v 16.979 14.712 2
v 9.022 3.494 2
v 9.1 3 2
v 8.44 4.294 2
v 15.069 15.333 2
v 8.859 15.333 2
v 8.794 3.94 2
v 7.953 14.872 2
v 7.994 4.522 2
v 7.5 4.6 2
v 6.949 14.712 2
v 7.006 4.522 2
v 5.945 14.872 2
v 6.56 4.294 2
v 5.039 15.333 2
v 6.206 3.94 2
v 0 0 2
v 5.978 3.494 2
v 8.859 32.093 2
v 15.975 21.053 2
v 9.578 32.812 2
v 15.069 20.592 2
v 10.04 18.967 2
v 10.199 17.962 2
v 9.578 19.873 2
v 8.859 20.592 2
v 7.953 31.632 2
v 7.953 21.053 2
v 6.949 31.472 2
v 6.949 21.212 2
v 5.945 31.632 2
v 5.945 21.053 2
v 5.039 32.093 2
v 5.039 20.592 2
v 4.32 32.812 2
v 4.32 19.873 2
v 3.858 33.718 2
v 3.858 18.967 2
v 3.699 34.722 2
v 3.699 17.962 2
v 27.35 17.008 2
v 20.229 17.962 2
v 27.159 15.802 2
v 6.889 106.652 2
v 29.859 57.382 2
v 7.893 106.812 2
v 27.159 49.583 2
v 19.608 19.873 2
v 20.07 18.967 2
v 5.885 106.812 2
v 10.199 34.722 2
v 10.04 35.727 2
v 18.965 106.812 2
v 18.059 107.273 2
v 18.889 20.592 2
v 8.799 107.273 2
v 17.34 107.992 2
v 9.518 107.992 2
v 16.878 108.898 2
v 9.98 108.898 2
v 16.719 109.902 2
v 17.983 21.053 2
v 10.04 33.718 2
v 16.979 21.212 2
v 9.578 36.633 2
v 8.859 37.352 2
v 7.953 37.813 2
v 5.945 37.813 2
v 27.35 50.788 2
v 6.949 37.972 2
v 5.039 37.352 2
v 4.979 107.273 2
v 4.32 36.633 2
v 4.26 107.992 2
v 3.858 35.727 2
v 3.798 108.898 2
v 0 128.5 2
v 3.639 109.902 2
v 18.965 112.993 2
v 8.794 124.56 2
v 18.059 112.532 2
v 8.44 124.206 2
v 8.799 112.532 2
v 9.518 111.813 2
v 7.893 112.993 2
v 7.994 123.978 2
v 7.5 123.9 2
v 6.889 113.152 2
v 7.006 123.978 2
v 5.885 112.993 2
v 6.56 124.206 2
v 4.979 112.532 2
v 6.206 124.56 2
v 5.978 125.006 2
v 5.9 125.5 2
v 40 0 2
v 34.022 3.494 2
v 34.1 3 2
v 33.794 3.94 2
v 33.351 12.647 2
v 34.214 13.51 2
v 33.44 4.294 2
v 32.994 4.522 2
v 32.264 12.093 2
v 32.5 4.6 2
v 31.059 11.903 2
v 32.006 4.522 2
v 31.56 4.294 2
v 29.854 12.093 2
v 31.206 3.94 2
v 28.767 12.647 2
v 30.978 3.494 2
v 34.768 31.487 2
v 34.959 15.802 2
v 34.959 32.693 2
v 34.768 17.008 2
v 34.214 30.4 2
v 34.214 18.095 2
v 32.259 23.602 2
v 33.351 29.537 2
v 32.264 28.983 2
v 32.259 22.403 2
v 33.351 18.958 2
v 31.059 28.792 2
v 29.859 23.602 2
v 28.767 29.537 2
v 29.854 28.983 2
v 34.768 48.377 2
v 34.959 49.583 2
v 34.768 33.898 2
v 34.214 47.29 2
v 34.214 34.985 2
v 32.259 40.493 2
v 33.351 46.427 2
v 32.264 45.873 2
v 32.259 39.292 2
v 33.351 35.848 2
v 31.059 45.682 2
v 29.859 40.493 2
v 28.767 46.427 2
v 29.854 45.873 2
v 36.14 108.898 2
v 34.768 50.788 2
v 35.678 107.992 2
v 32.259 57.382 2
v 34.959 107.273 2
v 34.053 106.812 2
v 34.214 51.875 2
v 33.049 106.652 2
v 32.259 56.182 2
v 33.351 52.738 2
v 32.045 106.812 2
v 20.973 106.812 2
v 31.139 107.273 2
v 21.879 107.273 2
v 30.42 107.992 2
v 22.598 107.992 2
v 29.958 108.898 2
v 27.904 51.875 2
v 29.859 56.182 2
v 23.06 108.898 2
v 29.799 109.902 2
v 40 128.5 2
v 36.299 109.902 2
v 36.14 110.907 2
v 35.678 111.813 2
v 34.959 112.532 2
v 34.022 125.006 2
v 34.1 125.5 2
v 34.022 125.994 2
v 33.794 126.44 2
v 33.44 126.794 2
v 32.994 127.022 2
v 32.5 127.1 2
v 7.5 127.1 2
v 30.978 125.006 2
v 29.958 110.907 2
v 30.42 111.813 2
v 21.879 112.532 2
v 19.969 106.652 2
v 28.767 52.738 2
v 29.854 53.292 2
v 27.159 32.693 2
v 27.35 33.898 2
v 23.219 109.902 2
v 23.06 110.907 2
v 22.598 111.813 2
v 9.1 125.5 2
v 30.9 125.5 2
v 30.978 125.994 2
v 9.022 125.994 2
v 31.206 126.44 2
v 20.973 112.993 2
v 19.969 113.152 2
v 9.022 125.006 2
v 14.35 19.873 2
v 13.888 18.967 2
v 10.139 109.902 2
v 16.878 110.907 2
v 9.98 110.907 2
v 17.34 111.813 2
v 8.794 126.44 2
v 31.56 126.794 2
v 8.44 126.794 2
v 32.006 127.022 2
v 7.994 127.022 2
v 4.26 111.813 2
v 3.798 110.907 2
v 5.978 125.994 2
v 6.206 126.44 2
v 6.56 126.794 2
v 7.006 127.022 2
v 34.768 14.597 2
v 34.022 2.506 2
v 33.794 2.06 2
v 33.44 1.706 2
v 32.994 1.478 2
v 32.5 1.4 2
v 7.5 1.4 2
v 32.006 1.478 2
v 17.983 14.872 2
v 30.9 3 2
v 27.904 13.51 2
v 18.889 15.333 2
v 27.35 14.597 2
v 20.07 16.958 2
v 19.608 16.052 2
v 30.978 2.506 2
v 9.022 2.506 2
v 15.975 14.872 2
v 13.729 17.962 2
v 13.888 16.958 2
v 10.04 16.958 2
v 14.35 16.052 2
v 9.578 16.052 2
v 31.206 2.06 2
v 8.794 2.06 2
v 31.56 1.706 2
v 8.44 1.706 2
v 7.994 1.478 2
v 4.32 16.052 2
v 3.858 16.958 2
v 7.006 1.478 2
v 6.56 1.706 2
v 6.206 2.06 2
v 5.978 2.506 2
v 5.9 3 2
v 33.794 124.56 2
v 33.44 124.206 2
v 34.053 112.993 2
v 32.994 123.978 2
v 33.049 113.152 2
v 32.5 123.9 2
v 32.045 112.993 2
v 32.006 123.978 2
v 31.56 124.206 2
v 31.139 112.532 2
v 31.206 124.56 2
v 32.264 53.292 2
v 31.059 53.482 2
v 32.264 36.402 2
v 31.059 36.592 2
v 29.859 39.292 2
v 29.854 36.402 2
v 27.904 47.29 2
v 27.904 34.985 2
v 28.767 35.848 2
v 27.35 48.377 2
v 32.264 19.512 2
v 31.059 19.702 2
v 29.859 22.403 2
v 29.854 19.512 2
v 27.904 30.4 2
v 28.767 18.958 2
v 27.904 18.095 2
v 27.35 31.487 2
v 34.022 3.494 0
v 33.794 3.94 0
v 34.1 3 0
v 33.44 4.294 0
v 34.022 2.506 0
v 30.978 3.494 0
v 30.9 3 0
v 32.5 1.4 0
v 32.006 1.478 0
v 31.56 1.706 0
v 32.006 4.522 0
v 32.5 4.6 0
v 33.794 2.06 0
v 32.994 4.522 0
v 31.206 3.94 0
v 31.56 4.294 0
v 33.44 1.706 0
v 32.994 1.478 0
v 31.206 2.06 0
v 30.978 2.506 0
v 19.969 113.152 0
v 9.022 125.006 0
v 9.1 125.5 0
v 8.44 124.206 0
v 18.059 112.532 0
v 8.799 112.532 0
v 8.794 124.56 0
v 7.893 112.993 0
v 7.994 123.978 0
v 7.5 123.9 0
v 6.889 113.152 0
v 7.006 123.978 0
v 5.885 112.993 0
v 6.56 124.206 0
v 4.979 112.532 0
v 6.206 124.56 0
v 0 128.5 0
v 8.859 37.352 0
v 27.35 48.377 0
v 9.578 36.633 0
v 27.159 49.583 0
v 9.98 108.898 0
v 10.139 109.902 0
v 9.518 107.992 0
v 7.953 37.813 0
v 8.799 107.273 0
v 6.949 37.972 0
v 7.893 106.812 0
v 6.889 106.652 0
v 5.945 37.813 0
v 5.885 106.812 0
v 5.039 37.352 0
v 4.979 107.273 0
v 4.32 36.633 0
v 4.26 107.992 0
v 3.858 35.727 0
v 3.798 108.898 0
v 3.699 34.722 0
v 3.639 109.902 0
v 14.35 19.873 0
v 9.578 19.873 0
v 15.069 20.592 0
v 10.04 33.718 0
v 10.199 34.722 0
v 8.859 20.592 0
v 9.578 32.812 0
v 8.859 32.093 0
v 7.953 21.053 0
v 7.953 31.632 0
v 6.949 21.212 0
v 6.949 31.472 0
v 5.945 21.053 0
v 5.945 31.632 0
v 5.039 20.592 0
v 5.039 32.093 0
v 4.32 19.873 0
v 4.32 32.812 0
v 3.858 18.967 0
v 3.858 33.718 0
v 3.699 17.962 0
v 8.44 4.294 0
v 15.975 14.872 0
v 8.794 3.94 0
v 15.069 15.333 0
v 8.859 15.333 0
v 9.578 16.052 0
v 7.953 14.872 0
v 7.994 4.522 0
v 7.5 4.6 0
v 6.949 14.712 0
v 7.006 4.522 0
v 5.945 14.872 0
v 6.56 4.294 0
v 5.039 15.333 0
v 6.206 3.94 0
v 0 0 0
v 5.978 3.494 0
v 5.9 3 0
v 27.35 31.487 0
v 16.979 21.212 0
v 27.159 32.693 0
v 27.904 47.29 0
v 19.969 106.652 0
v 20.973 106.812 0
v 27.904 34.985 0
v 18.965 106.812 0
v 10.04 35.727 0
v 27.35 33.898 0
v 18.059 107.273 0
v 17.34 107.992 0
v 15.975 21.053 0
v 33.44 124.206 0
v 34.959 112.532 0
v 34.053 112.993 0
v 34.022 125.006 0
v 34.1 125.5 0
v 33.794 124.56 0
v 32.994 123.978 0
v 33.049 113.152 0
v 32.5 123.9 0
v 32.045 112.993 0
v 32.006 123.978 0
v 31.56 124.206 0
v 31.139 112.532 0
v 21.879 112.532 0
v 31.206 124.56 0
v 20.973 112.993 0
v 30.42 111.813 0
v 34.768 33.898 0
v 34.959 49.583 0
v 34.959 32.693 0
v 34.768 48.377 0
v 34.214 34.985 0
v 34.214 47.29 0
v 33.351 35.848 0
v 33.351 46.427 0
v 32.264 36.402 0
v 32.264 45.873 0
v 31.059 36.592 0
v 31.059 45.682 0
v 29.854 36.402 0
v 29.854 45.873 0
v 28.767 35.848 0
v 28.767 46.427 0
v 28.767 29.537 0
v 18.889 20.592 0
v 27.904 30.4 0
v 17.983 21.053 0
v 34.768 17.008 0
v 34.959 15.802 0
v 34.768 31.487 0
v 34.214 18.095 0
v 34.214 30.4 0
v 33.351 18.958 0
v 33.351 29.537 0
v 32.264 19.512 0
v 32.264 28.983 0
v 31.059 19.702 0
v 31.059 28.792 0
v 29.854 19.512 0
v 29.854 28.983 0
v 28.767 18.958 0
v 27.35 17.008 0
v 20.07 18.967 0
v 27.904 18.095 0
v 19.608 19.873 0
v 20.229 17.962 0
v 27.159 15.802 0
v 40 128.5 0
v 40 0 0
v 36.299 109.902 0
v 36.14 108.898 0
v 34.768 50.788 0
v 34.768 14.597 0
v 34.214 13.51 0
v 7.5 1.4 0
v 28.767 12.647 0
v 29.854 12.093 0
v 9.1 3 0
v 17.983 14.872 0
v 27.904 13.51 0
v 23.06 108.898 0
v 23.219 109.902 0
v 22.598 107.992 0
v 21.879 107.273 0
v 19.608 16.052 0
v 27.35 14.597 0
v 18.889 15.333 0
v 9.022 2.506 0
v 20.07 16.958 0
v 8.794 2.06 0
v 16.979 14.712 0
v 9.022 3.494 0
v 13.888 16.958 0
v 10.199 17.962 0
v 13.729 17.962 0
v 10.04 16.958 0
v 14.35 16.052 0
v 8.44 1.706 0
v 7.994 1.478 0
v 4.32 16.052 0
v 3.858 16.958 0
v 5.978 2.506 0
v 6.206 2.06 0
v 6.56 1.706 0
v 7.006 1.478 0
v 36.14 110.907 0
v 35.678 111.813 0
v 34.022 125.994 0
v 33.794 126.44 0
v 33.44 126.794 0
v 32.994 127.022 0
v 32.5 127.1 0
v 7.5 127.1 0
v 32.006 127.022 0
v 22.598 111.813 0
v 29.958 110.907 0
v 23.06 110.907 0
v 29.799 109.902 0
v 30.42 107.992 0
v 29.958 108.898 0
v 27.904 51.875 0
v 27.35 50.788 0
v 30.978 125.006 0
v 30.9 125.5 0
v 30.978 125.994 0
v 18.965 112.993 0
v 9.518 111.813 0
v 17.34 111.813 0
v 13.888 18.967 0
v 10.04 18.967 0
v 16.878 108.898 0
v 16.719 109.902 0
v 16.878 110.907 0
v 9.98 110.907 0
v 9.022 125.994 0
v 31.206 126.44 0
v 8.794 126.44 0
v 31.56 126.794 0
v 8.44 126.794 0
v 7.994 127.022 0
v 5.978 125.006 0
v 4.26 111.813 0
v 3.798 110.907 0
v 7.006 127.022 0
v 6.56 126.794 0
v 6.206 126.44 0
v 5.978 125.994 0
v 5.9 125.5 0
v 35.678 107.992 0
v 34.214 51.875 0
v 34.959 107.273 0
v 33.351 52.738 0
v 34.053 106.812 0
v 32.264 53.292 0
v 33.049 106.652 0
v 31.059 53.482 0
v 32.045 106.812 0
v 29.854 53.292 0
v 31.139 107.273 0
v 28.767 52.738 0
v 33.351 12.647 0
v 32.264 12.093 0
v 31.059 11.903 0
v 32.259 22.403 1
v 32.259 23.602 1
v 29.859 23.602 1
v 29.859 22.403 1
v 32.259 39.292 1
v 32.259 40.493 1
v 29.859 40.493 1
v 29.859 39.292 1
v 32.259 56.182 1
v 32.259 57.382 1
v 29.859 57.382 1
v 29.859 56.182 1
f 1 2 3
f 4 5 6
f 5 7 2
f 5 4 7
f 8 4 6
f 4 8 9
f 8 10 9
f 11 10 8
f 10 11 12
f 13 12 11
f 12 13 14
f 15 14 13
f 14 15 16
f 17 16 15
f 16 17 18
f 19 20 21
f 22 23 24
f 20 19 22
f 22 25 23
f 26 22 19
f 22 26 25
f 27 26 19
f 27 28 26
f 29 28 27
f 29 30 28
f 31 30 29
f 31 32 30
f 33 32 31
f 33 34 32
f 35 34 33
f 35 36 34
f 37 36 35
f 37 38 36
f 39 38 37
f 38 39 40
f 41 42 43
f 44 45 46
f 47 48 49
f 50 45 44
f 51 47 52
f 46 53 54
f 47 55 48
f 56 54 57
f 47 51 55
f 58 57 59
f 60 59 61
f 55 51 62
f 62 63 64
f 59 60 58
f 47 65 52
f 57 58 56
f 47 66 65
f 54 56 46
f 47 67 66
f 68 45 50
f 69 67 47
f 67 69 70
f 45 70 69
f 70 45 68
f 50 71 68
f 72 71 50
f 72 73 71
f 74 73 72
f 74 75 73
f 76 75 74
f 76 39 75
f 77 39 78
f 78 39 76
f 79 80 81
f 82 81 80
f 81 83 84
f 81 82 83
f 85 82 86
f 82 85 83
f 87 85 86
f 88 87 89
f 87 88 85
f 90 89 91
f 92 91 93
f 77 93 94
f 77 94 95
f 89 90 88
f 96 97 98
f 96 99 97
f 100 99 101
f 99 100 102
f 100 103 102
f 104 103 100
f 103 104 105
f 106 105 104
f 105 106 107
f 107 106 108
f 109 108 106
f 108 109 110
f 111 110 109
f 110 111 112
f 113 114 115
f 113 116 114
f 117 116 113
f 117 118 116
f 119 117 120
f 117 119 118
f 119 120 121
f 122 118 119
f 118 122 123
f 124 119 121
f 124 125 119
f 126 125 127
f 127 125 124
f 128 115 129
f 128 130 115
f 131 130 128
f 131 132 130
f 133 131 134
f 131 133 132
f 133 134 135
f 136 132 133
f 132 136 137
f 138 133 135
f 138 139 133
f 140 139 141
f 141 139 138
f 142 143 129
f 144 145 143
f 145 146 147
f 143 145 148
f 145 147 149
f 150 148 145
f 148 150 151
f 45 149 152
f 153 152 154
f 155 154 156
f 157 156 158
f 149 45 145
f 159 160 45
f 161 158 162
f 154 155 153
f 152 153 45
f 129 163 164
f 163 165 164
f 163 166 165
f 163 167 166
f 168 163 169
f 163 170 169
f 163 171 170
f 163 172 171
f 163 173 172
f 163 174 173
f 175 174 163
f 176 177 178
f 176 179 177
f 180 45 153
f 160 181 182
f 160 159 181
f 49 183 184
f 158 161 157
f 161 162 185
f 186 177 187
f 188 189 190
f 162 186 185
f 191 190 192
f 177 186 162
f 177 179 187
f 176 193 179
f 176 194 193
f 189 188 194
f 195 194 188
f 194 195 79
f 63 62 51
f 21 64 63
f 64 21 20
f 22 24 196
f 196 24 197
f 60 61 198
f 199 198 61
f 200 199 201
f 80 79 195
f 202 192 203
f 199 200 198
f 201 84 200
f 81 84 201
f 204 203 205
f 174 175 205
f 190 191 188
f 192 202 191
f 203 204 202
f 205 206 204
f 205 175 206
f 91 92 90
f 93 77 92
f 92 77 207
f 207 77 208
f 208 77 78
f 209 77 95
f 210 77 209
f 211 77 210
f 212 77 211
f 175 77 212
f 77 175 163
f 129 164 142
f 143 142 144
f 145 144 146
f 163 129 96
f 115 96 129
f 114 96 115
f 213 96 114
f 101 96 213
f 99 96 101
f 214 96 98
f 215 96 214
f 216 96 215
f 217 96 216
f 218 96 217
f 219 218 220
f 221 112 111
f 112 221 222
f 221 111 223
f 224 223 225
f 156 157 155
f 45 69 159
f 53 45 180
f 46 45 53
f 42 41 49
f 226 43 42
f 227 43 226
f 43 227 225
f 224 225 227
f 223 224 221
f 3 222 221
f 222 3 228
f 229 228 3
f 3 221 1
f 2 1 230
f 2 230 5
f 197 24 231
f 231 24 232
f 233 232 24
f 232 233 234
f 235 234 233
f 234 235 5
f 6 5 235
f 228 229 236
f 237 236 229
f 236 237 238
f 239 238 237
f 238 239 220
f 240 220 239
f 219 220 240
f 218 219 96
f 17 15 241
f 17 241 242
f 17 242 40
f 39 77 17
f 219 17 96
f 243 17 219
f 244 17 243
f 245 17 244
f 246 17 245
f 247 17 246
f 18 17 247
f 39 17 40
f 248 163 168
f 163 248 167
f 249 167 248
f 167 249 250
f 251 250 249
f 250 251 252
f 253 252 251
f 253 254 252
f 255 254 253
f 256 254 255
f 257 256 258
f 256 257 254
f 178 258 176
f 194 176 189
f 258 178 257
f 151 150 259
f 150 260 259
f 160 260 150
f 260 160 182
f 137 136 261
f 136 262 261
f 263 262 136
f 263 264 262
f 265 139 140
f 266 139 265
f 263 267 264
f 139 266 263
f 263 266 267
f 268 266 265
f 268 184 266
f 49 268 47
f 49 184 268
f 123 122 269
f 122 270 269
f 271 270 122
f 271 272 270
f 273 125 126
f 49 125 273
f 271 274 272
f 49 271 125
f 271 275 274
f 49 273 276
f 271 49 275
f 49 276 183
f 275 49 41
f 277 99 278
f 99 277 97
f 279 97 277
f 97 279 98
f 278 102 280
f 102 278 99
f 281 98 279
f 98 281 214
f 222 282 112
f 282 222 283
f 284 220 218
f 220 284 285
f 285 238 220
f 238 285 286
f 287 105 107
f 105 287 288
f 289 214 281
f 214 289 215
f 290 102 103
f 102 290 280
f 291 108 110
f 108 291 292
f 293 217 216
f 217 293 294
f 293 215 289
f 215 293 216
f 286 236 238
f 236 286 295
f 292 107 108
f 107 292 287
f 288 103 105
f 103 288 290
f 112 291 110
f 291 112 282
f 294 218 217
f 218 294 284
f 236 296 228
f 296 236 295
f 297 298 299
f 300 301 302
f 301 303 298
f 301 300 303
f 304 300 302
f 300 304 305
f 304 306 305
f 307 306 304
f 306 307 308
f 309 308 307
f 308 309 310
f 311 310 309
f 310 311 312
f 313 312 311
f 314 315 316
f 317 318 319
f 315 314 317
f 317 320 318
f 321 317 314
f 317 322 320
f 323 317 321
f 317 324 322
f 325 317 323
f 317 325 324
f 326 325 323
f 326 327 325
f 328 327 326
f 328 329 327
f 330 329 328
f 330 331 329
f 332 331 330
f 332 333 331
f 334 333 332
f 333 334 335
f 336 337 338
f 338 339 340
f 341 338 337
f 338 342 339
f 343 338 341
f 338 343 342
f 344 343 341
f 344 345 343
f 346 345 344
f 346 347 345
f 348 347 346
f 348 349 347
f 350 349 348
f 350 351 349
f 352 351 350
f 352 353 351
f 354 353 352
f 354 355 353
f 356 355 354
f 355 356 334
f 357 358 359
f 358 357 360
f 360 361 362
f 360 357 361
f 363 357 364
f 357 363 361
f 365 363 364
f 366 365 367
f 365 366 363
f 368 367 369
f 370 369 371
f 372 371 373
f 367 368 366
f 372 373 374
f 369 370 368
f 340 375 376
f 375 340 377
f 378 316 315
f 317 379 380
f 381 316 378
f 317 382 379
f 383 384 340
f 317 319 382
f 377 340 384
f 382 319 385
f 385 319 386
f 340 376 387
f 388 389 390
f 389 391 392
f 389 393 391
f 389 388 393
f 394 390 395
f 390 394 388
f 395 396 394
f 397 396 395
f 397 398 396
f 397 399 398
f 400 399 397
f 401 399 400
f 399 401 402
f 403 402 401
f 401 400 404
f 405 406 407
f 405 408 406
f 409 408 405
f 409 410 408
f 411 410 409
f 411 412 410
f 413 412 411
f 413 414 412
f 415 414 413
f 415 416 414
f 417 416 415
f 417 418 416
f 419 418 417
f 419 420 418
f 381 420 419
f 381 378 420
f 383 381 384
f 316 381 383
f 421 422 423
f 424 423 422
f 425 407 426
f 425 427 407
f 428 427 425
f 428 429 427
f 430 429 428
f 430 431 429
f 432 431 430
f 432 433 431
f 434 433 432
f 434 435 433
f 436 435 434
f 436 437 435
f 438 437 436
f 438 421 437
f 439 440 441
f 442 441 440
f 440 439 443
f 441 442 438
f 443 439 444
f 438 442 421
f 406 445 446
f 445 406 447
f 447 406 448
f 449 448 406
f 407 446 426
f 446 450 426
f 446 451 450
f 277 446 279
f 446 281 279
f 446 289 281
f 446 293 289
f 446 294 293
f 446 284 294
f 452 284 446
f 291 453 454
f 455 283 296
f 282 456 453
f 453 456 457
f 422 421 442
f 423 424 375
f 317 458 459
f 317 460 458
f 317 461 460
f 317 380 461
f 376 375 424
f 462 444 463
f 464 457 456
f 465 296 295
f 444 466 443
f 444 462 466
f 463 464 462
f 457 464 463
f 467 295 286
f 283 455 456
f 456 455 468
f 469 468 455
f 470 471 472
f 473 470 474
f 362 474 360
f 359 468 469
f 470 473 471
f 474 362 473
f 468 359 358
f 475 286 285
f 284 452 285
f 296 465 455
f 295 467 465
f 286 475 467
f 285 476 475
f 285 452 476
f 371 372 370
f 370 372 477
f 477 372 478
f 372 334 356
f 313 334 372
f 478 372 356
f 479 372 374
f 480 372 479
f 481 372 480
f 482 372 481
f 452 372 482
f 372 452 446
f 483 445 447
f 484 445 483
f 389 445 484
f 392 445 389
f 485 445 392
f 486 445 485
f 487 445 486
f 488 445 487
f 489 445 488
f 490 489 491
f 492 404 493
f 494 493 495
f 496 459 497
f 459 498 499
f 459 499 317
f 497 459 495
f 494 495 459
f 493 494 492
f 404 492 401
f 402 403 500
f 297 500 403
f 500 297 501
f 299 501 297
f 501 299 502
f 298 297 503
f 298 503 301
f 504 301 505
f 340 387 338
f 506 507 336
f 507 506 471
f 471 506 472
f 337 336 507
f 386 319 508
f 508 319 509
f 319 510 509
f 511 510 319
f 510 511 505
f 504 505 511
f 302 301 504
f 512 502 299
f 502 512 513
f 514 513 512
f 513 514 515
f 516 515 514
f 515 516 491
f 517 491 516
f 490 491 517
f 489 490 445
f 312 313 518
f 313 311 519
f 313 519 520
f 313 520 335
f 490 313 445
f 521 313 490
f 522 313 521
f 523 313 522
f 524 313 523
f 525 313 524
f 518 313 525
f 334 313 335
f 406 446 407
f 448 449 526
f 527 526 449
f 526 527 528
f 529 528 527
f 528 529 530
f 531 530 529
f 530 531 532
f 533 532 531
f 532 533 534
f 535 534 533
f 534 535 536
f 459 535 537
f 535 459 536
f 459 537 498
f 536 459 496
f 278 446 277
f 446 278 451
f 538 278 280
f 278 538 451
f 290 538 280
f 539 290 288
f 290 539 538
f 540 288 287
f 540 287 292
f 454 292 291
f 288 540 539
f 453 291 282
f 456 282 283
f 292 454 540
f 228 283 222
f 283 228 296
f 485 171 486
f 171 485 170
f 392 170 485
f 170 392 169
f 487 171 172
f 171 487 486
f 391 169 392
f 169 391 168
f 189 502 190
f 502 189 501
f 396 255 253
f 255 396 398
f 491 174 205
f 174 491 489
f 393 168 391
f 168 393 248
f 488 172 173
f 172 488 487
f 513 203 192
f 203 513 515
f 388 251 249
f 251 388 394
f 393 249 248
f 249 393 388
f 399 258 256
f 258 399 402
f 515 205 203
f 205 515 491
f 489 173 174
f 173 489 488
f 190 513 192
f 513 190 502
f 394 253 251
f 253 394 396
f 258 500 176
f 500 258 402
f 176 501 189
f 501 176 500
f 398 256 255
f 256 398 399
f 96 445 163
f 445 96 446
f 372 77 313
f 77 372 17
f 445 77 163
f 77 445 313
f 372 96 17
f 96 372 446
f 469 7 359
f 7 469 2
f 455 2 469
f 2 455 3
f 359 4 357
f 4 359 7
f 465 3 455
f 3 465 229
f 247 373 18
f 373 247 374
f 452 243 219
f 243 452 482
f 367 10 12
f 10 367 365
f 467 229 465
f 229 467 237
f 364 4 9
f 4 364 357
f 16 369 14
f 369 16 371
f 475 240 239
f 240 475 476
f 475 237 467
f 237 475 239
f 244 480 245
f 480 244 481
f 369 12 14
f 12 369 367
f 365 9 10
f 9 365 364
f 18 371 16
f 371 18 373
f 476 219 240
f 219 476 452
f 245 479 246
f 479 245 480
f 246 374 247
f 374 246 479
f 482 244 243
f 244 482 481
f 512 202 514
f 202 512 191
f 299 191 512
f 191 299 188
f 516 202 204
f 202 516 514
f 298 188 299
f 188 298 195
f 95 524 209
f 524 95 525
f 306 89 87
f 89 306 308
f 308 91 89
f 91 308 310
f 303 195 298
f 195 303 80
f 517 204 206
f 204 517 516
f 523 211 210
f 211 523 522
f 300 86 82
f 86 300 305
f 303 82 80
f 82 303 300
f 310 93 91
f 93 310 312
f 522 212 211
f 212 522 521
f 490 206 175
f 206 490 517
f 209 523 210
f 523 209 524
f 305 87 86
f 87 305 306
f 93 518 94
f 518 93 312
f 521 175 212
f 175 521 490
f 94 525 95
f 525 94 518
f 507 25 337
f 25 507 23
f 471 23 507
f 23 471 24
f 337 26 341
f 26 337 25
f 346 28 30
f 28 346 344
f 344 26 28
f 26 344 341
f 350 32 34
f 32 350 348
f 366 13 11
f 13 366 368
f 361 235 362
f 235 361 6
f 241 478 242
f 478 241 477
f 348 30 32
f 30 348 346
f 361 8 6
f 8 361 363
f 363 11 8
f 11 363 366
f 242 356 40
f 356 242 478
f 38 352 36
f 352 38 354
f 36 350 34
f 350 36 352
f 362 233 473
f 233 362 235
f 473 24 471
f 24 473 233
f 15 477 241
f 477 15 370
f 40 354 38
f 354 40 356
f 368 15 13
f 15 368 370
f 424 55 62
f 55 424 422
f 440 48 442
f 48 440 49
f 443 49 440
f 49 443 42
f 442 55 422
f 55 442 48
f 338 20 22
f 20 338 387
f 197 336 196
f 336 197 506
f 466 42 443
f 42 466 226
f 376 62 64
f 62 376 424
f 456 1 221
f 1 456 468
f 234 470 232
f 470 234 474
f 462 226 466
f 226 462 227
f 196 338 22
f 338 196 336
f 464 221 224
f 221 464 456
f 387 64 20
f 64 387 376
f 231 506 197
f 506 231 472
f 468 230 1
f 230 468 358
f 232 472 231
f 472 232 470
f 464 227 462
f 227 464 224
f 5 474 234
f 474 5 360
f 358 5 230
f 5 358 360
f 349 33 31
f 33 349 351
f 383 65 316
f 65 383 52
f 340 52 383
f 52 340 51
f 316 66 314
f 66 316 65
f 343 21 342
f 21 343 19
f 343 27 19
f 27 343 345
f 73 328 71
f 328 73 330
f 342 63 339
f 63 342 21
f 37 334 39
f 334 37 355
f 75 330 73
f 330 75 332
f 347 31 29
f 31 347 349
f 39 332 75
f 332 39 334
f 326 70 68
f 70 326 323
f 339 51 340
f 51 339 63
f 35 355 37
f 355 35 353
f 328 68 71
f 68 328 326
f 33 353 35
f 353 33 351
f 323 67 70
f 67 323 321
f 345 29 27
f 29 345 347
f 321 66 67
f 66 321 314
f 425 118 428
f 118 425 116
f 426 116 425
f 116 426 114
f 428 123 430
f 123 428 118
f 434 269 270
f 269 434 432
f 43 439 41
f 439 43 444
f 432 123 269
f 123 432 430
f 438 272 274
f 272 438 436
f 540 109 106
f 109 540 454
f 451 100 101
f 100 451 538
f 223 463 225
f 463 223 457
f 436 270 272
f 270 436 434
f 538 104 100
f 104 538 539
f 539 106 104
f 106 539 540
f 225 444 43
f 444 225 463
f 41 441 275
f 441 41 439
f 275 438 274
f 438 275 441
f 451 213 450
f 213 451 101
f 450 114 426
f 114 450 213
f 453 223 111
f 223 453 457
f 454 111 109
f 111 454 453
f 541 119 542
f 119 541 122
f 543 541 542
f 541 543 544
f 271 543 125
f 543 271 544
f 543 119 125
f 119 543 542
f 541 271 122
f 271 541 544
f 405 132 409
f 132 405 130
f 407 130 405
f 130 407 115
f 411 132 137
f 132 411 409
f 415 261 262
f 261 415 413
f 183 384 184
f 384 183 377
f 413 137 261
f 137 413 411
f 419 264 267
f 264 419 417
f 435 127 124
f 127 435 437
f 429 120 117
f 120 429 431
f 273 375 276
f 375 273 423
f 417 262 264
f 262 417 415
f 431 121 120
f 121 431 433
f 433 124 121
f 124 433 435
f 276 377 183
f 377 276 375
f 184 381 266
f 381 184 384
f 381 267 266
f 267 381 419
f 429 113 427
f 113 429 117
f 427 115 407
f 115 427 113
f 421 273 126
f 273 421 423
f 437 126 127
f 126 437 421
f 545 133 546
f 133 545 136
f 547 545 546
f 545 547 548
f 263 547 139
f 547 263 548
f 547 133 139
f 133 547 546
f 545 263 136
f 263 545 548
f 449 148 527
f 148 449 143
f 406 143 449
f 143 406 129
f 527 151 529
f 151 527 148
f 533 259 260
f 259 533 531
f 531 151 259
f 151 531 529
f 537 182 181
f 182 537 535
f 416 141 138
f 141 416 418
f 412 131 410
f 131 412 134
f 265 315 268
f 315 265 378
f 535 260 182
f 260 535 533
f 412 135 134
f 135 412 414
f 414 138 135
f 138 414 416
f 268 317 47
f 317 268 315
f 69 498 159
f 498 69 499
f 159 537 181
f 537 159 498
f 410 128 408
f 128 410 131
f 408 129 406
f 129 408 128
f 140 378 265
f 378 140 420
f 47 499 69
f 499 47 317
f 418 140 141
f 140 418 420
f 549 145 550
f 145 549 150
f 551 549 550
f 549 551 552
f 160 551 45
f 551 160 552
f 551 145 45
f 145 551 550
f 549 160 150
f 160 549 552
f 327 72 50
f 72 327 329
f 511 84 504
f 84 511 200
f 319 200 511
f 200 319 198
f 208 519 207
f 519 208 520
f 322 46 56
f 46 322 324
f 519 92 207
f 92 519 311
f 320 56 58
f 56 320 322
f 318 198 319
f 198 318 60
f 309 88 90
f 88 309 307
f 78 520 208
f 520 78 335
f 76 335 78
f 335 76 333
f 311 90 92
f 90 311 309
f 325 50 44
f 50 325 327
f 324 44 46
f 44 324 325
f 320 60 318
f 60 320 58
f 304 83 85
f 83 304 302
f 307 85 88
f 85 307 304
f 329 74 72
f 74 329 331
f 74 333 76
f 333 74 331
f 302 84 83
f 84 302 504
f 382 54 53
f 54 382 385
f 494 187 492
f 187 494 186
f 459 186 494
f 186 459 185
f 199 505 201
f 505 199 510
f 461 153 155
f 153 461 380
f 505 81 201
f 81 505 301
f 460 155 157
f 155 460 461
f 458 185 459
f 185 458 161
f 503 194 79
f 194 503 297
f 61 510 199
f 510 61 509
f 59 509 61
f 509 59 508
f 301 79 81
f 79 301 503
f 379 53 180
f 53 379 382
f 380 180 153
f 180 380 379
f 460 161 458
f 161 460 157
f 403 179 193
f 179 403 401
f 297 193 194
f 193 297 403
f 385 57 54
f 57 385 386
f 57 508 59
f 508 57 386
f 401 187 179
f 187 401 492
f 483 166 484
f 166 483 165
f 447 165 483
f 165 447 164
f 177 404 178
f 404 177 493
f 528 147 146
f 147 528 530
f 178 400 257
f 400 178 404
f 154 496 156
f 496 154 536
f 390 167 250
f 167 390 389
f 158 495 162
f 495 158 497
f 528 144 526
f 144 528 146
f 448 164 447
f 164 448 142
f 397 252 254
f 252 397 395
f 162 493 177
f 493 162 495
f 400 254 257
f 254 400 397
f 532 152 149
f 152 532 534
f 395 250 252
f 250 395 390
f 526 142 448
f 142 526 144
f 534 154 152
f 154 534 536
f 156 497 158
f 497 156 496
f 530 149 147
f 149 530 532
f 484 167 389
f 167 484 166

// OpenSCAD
// file: ../../../share/openscad/eurorack-panel.scad
// this is based on A100 spec from doepfer https://doepfer.de/a100_man/a100m_e.htm

eurorack_panel_height = function() 128.5;
eurorack_panel_width = function(width_in_hp) width_in_hp * 5;

module eurorack_panel(width_in_hp, thickness=2) {
    difference() {
        cube([eurorack_panel_width(width_in_hp), eurorack_panel_height(), thickness]);

        translate([7.5, 3, 0])
            cylinder(thickness, d=3.2, $fn=20);
        translate([7.5, eurorack_panel_height() - 3, 0])
            cylinder(thickness, d=3.2, $fn=20);

        if (width_in_hp >= 8) {
            translate([eurorack_panel_width(width_in_hp) - 7.5, 3, 0])
                cylinder(thickness, d=3.2, $fn=20);
            translate([eurorack_panel_width(width_in_hp) - 7.5, eurorack_panel_height() - 3, 0])
                cylinder(thickness, d=3.2, $fn=20);
        }
    }
}
// main file
/*
 * SPDX-FileCopyrightText: 2021-2022 Rafael G. Martins <rafael@rafaelmartins.eng.br>
 * SPDX-License-Identifier: CERN-OHL-S-2.0
 */

include <../../../share/openscad/eurorack-panel.scad>

width_in_hp = 8;
thickness = 2;

pcb_width = 37.782;
pcb_height = 107.315;

pcb0_x = (eurorack_panel_width(width_in_hp) - pcb_width) / 2;
pcb0_y = (eurorack_panel_height() - pcb_height) / 2;

jack_d = 6.5;
jack_top_distance_x = 5.84;
jack_top_distance_y = 7.37;
jack_top_spacing_x = 10.03;
jack_top_spacing_y = 16.76;
jack_bottom_distance_x = 5.78;
jack_bottom_distance_y = 99.31;
jack_bottom_spacing = 13.08;

pot_d = 7.8;
pot_distance_x = 29.95;
pot_distance_y = 5.21;
pot_spacing = 16.89;
pot_tag_width = 2.4;
pot_tag_length = 1.2;
pot_tag_height = 1;
pot_tag_from_center_x = -pot_tag_width / 2;
pot_tag_from_center_y = 6 - pot_tag_length / 2;

difference() {
    eurorack_panel(width_in_hp, thickness);

    translate([pcb0_x, pcb0_y, 0]) {
        translate([jack_top_distance_x, jack_top_distance_y, 0]) {
            cylinder(thickness, d=jack_d, $fn=20);
            translate([jack_top_spacing_x, 0, 0])
                cylinder(thickness, d=jack_d, $fn=20);
            translate([0, jack_top_spacing_y, 0])
                cylinder(thickness, d=jack_d, $fn=20);
        }

        for (i = [0 : 2]) {
            translate([pot_distance_x, pot_distance_y + i * pot_spacing, 0]) {
                cylinder(thickness, d=pot_d, $fn=20);
                translate([pot_tag_from_center_x, pot_tag_from_center_y, thickness - pot_tag_height])
                    cube([pot_tag_width, pot_tag_length, pot_tag_height]);
            }
        }

        for (i = [0 : 2]) {
            translate([jack_bottom_distance_x + i * jack_bottom_spacing, jack_bottom_distance_y, 0])
                cylinder(thickness, d=jack_d, $fn=20);
        }
    }
}
